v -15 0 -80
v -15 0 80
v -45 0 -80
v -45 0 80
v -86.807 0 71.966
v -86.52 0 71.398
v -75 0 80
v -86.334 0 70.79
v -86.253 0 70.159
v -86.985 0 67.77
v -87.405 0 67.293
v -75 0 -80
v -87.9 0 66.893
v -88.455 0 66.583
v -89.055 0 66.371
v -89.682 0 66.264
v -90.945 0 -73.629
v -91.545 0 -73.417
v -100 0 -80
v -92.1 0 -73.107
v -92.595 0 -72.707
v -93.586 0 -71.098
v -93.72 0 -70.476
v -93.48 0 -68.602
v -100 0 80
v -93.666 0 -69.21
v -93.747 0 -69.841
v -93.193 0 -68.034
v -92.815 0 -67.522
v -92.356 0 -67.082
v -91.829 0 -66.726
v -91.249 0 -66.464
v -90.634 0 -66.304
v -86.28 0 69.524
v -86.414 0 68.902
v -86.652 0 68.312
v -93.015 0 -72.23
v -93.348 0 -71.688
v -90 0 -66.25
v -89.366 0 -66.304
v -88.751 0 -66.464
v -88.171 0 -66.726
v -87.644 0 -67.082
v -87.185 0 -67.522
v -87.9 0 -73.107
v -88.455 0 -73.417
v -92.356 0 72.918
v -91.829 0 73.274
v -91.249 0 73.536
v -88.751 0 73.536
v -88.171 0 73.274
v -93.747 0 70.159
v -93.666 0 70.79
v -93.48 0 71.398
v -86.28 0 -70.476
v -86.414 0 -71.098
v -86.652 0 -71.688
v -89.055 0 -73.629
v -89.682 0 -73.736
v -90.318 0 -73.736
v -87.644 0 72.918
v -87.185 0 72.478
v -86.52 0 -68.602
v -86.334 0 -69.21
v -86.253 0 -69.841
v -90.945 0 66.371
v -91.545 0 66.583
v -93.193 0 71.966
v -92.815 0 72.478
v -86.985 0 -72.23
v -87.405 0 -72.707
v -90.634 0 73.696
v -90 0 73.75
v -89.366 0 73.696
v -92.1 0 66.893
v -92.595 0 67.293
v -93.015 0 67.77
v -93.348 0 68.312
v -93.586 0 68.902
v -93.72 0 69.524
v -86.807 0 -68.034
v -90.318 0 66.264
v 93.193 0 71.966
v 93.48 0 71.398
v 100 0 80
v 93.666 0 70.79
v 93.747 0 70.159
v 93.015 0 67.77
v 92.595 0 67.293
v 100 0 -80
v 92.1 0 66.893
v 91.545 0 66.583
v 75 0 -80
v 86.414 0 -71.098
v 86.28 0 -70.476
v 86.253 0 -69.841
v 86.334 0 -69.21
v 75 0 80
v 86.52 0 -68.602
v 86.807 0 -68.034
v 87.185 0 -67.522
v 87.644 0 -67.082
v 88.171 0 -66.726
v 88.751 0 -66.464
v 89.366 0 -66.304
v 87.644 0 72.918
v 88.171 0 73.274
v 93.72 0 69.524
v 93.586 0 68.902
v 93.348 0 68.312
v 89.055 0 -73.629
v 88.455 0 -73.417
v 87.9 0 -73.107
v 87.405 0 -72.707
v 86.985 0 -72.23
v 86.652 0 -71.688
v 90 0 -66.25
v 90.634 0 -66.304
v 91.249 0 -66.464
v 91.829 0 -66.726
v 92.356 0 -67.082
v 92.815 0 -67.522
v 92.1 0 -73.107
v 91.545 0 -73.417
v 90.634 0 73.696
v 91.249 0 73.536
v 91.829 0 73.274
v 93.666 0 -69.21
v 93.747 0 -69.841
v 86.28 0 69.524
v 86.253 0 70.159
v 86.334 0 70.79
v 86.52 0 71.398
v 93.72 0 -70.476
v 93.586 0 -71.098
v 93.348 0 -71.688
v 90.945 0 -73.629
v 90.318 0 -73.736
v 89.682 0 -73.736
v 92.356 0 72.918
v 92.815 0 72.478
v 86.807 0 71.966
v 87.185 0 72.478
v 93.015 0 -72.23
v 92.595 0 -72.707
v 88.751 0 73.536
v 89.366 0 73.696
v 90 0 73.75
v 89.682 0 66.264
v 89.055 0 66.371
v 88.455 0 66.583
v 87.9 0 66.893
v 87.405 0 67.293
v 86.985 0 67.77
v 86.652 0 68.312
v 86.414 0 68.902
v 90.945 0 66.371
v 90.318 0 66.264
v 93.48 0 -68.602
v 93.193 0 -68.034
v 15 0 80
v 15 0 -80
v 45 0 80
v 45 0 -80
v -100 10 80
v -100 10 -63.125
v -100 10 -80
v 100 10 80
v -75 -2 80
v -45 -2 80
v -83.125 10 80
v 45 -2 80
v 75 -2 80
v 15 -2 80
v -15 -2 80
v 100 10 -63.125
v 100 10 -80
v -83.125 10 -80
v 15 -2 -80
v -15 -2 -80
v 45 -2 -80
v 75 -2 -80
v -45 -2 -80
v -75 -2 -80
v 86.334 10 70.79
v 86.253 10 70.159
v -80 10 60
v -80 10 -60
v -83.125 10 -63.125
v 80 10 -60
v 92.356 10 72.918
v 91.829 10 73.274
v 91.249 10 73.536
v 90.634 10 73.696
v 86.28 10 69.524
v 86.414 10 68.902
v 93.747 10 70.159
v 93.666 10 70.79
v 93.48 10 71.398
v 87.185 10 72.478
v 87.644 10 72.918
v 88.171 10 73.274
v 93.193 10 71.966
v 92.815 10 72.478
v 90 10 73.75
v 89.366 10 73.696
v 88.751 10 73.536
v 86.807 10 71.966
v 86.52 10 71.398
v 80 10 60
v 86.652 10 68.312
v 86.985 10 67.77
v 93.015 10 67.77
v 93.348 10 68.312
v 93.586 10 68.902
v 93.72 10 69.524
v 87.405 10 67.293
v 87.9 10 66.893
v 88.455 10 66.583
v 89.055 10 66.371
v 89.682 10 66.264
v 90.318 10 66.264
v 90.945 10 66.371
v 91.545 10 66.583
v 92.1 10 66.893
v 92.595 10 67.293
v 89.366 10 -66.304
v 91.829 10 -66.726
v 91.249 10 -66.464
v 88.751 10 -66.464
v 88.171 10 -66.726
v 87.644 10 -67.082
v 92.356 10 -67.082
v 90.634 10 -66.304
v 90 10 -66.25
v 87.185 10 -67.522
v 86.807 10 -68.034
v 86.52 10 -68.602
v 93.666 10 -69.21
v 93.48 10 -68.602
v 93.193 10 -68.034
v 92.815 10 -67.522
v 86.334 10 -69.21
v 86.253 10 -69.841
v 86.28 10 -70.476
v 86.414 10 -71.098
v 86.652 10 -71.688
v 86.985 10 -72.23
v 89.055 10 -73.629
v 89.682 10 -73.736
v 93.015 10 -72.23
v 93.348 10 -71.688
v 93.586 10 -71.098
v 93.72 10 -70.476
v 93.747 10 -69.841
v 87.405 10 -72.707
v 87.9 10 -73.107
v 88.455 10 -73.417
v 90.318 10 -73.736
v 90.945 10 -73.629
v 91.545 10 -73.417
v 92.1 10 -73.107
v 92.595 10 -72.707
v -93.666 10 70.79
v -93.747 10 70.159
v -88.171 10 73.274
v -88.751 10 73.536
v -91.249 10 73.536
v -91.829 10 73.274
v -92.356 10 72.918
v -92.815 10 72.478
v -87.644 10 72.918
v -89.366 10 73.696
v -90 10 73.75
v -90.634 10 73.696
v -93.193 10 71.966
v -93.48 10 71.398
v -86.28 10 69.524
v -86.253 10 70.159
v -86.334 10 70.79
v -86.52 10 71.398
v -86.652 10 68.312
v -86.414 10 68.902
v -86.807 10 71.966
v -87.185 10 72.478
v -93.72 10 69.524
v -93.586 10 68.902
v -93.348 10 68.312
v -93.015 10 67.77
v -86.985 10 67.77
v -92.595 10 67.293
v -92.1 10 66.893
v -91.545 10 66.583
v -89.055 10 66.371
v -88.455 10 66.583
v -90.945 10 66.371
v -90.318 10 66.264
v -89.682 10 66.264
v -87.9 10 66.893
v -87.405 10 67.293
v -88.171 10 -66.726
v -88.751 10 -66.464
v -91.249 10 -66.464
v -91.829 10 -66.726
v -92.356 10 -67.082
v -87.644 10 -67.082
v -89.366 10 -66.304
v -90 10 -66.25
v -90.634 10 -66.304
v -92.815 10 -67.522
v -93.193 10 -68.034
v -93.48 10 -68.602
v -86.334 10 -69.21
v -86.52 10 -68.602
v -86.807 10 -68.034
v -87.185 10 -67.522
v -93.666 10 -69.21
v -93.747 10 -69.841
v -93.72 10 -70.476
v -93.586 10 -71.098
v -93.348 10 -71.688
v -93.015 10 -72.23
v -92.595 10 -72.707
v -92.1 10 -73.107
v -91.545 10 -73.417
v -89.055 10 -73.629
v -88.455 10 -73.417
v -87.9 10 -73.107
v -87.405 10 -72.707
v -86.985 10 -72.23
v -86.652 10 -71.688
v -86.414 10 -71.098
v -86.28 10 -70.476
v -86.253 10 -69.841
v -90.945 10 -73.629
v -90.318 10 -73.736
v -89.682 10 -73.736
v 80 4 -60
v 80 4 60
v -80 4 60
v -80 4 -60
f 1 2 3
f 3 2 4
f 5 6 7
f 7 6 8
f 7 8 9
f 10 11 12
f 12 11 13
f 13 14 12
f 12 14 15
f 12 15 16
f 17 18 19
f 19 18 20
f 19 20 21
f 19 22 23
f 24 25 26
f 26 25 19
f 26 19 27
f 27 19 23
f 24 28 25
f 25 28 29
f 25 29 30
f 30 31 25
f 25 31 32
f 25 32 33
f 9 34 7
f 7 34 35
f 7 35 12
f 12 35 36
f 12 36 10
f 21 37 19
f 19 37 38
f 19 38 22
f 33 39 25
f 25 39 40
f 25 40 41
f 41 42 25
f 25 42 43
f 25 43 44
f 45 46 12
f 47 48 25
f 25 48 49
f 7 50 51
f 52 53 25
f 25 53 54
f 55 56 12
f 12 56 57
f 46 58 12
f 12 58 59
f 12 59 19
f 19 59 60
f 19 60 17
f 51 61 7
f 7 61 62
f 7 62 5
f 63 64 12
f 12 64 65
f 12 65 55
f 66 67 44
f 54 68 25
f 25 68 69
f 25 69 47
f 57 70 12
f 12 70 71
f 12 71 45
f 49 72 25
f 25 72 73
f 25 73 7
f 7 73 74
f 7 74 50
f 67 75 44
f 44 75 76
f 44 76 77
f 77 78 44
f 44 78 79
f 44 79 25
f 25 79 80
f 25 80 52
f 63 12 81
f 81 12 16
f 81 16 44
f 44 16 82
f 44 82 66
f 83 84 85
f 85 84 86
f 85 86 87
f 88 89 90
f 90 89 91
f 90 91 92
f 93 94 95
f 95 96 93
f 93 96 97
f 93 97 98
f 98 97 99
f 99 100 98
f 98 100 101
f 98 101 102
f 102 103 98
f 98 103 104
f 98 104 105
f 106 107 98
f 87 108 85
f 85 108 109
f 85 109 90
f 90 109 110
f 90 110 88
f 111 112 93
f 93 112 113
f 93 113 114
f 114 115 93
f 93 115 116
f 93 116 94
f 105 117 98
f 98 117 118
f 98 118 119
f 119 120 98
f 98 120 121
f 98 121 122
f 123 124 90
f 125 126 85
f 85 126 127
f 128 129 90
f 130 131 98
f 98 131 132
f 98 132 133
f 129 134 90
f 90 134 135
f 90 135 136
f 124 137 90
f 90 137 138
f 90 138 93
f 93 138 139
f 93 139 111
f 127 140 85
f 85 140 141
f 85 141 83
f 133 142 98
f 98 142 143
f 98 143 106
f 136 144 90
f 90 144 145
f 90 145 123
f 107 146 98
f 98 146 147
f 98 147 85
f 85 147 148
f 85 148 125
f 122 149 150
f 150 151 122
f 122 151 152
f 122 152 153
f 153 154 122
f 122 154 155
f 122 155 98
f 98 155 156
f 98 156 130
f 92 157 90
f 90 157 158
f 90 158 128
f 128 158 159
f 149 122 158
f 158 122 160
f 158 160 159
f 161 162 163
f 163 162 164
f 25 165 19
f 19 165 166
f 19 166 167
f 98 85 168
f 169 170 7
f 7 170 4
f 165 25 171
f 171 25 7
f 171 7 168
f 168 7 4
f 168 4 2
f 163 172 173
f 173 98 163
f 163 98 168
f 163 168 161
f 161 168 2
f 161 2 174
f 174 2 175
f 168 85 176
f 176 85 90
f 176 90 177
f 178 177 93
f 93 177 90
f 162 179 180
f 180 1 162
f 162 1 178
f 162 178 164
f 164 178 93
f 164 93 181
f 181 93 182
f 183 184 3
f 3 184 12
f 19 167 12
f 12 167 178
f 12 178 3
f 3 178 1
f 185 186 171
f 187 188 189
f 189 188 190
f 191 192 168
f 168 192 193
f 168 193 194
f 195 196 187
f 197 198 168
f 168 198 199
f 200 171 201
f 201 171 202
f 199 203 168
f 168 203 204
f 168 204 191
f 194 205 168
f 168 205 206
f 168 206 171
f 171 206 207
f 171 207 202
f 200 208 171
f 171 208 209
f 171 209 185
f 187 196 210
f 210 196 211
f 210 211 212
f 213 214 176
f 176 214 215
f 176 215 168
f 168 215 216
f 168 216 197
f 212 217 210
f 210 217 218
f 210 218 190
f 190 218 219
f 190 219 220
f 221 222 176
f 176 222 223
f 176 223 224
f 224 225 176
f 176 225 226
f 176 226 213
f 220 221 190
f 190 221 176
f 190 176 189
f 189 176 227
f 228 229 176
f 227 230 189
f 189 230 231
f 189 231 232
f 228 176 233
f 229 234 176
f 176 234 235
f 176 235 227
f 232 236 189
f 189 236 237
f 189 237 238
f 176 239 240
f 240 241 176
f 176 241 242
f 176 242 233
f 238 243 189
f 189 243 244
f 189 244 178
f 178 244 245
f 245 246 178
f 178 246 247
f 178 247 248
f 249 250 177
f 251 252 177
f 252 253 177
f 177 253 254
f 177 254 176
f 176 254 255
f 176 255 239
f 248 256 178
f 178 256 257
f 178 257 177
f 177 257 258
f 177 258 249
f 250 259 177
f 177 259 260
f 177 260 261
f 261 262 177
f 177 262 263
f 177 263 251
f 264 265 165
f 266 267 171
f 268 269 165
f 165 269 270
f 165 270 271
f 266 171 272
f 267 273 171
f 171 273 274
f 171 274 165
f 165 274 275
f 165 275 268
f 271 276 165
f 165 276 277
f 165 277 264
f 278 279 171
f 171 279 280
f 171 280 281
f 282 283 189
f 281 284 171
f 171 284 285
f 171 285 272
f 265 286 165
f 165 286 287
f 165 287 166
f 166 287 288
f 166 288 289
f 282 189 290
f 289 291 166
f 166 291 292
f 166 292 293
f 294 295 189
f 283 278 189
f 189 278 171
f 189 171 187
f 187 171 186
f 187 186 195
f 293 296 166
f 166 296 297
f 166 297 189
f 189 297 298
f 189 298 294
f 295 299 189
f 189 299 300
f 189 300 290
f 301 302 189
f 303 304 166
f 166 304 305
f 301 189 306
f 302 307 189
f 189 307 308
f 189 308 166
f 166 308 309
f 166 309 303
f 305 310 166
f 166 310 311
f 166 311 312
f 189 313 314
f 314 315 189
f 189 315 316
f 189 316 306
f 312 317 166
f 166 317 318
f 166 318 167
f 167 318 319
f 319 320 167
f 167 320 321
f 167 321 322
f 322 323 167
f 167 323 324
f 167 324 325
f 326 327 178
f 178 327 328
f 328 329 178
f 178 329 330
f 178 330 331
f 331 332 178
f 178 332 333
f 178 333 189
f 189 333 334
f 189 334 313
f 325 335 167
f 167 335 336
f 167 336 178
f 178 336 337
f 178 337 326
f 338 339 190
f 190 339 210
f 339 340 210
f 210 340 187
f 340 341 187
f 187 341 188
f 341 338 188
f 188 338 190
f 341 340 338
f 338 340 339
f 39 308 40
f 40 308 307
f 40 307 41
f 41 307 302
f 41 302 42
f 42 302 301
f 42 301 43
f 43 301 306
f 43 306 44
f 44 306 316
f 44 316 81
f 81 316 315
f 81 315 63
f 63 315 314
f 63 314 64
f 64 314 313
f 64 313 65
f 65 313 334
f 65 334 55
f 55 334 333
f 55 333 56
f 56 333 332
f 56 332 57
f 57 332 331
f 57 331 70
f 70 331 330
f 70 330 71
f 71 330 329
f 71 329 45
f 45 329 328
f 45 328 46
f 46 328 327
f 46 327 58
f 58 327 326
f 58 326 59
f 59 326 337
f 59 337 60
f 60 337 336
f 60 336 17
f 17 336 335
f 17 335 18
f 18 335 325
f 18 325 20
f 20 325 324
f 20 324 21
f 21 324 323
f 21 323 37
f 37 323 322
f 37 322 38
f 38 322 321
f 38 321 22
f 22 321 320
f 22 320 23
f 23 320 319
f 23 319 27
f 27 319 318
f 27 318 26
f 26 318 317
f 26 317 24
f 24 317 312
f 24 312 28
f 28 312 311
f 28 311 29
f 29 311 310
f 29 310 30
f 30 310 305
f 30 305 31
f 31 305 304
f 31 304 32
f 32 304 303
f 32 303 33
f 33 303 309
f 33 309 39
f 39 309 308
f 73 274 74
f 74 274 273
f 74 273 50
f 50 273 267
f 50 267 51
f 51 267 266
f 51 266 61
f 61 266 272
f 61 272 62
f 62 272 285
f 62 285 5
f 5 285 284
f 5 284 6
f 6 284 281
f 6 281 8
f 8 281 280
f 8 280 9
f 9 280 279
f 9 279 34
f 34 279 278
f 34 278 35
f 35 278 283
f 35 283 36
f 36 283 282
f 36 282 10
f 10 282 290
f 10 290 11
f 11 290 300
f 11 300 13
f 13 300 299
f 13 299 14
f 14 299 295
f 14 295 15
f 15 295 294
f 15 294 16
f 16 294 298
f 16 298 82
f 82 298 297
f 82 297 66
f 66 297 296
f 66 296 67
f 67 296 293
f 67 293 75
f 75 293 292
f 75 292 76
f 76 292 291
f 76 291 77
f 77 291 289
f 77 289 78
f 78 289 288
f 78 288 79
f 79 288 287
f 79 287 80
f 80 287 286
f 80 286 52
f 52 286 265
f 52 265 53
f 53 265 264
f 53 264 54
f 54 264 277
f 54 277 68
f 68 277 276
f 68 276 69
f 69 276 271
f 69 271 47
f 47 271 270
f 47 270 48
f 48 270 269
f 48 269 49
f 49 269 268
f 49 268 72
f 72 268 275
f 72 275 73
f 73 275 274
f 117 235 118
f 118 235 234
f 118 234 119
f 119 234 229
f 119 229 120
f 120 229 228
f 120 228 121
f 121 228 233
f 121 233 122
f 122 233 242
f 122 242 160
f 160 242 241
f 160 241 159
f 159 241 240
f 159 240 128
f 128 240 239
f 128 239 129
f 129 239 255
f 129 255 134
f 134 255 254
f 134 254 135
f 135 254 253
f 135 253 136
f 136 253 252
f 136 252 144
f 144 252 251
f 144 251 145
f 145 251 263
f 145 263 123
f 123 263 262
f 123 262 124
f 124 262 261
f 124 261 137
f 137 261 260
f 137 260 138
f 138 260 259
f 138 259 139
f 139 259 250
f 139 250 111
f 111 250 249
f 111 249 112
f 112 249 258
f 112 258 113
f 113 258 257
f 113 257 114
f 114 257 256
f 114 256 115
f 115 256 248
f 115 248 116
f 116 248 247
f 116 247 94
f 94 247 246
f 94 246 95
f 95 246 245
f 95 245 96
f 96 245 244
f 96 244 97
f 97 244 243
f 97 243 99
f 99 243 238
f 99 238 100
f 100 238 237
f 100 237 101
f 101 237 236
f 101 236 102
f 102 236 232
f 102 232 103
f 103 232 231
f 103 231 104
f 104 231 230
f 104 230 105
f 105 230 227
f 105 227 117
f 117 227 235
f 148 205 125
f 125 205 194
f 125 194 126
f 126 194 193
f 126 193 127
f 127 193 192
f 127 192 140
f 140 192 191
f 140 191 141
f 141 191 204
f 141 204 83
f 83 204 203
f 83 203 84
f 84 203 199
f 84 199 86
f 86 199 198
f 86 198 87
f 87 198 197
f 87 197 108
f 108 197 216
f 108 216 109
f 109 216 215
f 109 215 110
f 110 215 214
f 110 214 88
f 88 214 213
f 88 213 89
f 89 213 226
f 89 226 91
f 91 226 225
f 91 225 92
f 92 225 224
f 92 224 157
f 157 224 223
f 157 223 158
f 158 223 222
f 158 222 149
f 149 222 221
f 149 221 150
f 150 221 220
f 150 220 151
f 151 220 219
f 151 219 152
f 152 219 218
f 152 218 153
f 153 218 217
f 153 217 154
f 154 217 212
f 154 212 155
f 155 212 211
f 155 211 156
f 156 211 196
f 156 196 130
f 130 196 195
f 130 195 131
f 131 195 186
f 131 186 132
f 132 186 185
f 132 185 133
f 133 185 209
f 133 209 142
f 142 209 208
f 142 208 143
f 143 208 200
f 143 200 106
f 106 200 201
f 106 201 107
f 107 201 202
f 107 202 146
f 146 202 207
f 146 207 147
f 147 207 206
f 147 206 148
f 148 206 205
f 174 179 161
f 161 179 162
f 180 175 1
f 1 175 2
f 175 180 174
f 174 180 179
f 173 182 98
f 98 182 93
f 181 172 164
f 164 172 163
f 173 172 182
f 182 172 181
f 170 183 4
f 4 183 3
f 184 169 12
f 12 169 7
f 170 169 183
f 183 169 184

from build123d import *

# Parameters (mm, degrees)
SKETCH1_W           = 200
SKETCH1_H           = 160
BOSS_EXTRUDE3_DEPTH = 10
SKETCH3_R           = 3.75
SKETCH3_W           = 160
SKETCH3_H           = 120
CUT_EXTRUDE2_DEPTH  = 6
SKETCH6_R           = 3.75
CUT_EXTRUDE4_DEPTH  = 129.202964084
SKETCH7_W           = 30
SKETCH7_H           = 160
BOSS_EXTRUDE4_DEPTH = 2


with BuildPart() as part:
    # Sketch1 → Boss-Extrude3 (new body)
    with BuildSketch(Plane(origin=(0, 0, 0), x_dir=(1, 0, 0), z_dir=(0, 1, 0))):
        Rectangle(SKETCH1_W, SKETCH1_H)
    extrude(amount=BOSS_EXTRUDE3_DEPTH)

    # Sketch3 → Cut-Extrude2 (cut)
    with BuildSketch(Plane(origin=(0, 10, 0), x_dir=(1, 0, 0), z_dir=(0, 1, 0))):
        with Locations(Location((-90, 70, 0), (0, 0, 270))):
            Circle(SKETCH3_R)
        with Locations(Location((90, -70, 0), (0, 0, 270))):
            Circle(SKETCH3_R)
        with Locations(Location((90, 70, 0), (0, 0, 270))):
            Circle(SKETCH3_R)
        with Locations(Location((-90, -70, 0), (0, 0, 270))):
            Circle(SKETCH3_R)
        Rectangle(SKETCH3_W, SKETCH3_H)
    extrude(amount=-CUT_EXTRUDE2_DEPTH, mode=Mode.SUBTRACT)

    # Sketch6 → Cut-Extrude4 (cut, through all)
    with BuildSketch(Plane(origin=(0, 4, 0), x_dir=(1, 0, 0), z_dir=(0, 1, 0))):
        with Locations(Location((-90, 70, 0), (0, 0, 270))):
            Circle(SKETCH6_R)
        with Locations(Location((90, 70, 0), (0, 0, 270))):
            Circle(SKETCH6_R)
        with Locations(Location((90, -70, 0), (0, 0, 270))):
            Circle(SKETCH6_R)
        with Locations(Location((-90, -70, 0), (0, 0, 270))):
            Circle(SKETCH6_R)
    extrude(amount=-CUT_EXTRUDE4_DEPTH, mode=Mode.SUBTRACT)

    # Sketch7 → Boss-Extrude4 (add)
    with BuildSketch(Plane(origin=(0, 0, 0), x_dir=(-1, 0, 0), z_dir=(0, -1, 0))):
        Rectangle(SKETCH7_W, SKETCH7_H)
        with Locations((60, 0)):
            Rectangle(SKETCH7_W, SKETCH7_H)
        with Locations((-60, 0)):
            Rectangle(SKETCH7_W, SKETCH7_H)
    extrude(amount=BOSS_EXTRUDE4_DEPTH)


solid = part.part
